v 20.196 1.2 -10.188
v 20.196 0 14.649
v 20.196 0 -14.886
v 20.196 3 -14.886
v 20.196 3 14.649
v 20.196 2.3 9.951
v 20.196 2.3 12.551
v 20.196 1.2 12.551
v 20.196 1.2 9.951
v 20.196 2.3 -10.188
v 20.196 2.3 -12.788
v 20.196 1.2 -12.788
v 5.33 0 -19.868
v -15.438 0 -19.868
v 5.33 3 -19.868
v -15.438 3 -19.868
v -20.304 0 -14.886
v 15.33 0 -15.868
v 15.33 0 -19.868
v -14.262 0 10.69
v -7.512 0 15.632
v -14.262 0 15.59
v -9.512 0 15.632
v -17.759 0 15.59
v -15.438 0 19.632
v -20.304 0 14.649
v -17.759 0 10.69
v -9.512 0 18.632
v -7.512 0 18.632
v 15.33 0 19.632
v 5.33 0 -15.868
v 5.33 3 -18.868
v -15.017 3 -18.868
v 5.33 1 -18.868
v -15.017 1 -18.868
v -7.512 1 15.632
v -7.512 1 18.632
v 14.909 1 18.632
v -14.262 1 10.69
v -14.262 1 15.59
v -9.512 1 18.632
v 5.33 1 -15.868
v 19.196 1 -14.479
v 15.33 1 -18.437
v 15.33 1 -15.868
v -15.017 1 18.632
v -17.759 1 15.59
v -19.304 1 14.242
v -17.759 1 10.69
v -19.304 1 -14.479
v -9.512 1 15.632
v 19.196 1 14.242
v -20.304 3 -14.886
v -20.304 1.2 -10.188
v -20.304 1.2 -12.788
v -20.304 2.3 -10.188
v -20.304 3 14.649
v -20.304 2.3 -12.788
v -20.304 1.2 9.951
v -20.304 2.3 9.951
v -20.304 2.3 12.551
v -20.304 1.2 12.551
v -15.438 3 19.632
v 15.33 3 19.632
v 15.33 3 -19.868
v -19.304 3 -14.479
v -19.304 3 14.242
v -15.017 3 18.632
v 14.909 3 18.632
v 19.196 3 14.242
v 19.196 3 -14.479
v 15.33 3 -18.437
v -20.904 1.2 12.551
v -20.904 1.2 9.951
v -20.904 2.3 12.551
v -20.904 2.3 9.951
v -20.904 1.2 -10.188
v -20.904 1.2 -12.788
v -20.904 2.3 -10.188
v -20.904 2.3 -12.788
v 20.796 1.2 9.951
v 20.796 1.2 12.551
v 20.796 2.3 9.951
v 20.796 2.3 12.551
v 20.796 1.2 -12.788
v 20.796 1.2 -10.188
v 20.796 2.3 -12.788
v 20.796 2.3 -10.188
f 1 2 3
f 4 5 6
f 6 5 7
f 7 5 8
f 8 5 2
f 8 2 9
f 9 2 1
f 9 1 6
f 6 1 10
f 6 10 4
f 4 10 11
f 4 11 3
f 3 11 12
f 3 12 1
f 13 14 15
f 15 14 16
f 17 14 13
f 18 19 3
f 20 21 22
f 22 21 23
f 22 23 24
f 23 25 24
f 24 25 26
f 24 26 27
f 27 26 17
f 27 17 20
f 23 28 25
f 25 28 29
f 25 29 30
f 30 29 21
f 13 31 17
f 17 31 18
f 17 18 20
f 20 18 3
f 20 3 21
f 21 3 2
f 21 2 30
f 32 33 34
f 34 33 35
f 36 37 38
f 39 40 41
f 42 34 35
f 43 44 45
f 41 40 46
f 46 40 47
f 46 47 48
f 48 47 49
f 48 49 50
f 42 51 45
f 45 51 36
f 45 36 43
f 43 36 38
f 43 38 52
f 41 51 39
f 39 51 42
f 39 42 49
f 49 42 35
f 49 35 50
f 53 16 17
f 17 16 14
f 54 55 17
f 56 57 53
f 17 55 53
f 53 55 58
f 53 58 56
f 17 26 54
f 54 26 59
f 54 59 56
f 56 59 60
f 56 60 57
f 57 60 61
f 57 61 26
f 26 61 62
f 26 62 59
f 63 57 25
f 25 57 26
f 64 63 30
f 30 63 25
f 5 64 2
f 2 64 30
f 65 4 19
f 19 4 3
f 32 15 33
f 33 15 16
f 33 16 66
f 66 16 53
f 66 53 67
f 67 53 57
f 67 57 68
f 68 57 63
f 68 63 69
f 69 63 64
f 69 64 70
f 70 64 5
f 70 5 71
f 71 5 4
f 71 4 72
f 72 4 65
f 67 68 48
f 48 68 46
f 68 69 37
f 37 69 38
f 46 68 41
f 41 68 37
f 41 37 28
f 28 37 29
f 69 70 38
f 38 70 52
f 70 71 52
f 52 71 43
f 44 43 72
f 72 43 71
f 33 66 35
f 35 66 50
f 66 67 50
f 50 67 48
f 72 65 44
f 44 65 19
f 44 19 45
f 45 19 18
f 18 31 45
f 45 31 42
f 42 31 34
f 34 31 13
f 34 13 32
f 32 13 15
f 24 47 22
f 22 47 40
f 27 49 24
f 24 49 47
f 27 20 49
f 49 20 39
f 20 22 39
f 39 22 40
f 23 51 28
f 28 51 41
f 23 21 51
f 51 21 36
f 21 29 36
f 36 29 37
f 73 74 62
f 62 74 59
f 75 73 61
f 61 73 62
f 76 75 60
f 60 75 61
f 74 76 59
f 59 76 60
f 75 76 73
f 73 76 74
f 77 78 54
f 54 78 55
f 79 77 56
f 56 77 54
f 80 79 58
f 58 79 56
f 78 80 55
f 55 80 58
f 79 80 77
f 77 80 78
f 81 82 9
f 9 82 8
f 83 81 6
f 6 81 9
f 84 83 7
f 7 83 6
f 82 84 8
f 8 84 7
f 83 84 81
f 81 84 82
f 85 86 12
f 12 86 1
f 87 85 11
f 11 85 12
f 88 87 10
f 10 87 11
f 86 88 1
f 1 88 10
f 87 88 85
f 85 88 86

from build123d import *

# Parameters (mm, degrees)
BOSS_EXTRUDE1_DEPTH     = 1
BOSS_EXTRUDE2_START     = 1
BOSS_EXTRUDE2_DEPTH     = 2
CUT_EXTRUDE1_DEPTH      = 29.565825694
CUT_EXTRUDE1_DEPTH_BACK = 30.565825694
CUT_EXTRUDE1_START      = 1
SKETCH1_4_W             = 10
SKETCH1_4_H             = 4
SKETCH1_4_W_2           = 2
SKETCH1_4_H_2           = 3
SKETCH1_4_W_3           = 3.497046445
SKETCH1_4_H_3           = 4.9
BOSS_EXTRUDE3_START     = -20.304052
SKETCH2_W               = 2.6
SKETCH2_H               = 1.1
BOSS_EXTRUDE3_DEPTH     = 0.6
BOSS_EXTRUDE4_START     = 20.195948
SKETCH2_2_W             = 2.6
SKETCH2_2_H             = 1.1
BOSS_EXTRUDE4_DEPTH     = 0.6


with BuildPart() as part:
    # Sketch1 → Boss-Extrude1 (new body)
    with BuildSketch(Plane(origin=(0, 0, 0), x_dir=(1, 0, 0), z_dir=(0, 1, 0))):
        Polygon((-20.304052055, 14.886180374), (-20.304052055, -14.649453395), (-15.437733663, -19.631636511), (15.329629553, -19.631636511), (20.195947945, -14.649453395), (20.195947945, 14.886180374), (15.329629553, 19.868363489), (-15.437733663, 19.868363489), align=None)
    extrude(amount=BOSS_EXTRUDE1_DEPTH)

    # Sketch1<3> → Boss-Extrude2 (add)
    with BuildSketch(Plane(origin=(0, 0, 0), x_dir=(1, 0, 0), z_dir=(0, 1, 0)).offset(BOSS_EXTRUDE2_START)):
        Polygon((-20.304052055, 14.886180374), (-20.304052055, -14.649453395), (-15.437733663, -19.631636511), (15.329629553, -19.631636511), (20.195947945, -14.649453395), (20.195947945, 14.886180374), (15.329629553, 19.868363489), (-15.437733663, 19.868363489), align=None)
        Polygon((-19.304052055, 14.478841428), (-15.016611903, 18.868363489), (14.908507792, 18.868363489), (19.195947945, 14.478841428), (19.195947945, -14.24211445), (14.908507792, -18.631636511), (-15.016611903, -18.631636511), (-19.304052055, -14.24211445), align=None, mode=Mode.SUBTRACT)
    extrude(amount=BOSS_EXTRUDE2_DEPTH)

    # Sketch1<4> → Cut-Extrude1 (cut, two sides: drawn at the far end of the back side and taken through both)
    with BuildSketch(Plane(origin=(0, 0, 0), x_dir=(1, 0, 0), z_dir=(0, 1, 0)).offset(CUT_EXTRUDE1_START - CUT_EXTRUDE1_DEPTH_BACK)):
        with Locations((10.329629553, 17.868363489)):
            Rectangle(SKETCH1_4_W, SKETCH1_4_H)
        with Locations((-8.511953553, -17.131636511)):
            Rectangle(SKETCH1_4_W_2, SKETCH1_4_H_2)
        with Locations((-16.010445854, -13.139778313)):
            Rectangle(SKETCH1_4_W_3, SKETCH1_4_H_3)
    extrude(amount=CUT_EXTRUDE1_DEPTH + CUT_EXTRUDE1_DEPTH_BACK, mode=Mode.SUBTRACT)

    # Sketch2 → Boss-Extrude3 (add)
    with BuildSketch(Plane(origin=(0, 0, 0), x_dir=(0, 0, -1), z_dir=(1, 0, 0)).offset(BOSS_EXTRUDE3_START)):
        with Locations((-11.251288132, 1.75)):
            Rectangle(SKETCH2_W, SKETCH2_H)
        with Locations((11.48801511, 1.75)):
            Rectangle(SKETCH2_W, SKETCH2_H)
    extrude(amount=-BOSS_EXTRUDE3_DEPTH)

    # Sketch2<2> → Boss-Extrude4 (add)
    with BuildSketch(Plane(origin=(0, 0, 0), x_dir=(0, 0, -1), z_dir=(1, 0, 0)).offset(BOSS_EXTRUDE4_START)):
        with Locations((-11.251288132, 1.75)):
            Rectangle(SKETCH2_2_W, SKETCH2_2_H)
        with Locations((11.48801511, 1.75)):
            Rectangle(SKETCH2_2_W, SKETCH2_2_H)
    extrude(amount=BOSS_EXTRUDE4_DEPTH)


solid = part.part
